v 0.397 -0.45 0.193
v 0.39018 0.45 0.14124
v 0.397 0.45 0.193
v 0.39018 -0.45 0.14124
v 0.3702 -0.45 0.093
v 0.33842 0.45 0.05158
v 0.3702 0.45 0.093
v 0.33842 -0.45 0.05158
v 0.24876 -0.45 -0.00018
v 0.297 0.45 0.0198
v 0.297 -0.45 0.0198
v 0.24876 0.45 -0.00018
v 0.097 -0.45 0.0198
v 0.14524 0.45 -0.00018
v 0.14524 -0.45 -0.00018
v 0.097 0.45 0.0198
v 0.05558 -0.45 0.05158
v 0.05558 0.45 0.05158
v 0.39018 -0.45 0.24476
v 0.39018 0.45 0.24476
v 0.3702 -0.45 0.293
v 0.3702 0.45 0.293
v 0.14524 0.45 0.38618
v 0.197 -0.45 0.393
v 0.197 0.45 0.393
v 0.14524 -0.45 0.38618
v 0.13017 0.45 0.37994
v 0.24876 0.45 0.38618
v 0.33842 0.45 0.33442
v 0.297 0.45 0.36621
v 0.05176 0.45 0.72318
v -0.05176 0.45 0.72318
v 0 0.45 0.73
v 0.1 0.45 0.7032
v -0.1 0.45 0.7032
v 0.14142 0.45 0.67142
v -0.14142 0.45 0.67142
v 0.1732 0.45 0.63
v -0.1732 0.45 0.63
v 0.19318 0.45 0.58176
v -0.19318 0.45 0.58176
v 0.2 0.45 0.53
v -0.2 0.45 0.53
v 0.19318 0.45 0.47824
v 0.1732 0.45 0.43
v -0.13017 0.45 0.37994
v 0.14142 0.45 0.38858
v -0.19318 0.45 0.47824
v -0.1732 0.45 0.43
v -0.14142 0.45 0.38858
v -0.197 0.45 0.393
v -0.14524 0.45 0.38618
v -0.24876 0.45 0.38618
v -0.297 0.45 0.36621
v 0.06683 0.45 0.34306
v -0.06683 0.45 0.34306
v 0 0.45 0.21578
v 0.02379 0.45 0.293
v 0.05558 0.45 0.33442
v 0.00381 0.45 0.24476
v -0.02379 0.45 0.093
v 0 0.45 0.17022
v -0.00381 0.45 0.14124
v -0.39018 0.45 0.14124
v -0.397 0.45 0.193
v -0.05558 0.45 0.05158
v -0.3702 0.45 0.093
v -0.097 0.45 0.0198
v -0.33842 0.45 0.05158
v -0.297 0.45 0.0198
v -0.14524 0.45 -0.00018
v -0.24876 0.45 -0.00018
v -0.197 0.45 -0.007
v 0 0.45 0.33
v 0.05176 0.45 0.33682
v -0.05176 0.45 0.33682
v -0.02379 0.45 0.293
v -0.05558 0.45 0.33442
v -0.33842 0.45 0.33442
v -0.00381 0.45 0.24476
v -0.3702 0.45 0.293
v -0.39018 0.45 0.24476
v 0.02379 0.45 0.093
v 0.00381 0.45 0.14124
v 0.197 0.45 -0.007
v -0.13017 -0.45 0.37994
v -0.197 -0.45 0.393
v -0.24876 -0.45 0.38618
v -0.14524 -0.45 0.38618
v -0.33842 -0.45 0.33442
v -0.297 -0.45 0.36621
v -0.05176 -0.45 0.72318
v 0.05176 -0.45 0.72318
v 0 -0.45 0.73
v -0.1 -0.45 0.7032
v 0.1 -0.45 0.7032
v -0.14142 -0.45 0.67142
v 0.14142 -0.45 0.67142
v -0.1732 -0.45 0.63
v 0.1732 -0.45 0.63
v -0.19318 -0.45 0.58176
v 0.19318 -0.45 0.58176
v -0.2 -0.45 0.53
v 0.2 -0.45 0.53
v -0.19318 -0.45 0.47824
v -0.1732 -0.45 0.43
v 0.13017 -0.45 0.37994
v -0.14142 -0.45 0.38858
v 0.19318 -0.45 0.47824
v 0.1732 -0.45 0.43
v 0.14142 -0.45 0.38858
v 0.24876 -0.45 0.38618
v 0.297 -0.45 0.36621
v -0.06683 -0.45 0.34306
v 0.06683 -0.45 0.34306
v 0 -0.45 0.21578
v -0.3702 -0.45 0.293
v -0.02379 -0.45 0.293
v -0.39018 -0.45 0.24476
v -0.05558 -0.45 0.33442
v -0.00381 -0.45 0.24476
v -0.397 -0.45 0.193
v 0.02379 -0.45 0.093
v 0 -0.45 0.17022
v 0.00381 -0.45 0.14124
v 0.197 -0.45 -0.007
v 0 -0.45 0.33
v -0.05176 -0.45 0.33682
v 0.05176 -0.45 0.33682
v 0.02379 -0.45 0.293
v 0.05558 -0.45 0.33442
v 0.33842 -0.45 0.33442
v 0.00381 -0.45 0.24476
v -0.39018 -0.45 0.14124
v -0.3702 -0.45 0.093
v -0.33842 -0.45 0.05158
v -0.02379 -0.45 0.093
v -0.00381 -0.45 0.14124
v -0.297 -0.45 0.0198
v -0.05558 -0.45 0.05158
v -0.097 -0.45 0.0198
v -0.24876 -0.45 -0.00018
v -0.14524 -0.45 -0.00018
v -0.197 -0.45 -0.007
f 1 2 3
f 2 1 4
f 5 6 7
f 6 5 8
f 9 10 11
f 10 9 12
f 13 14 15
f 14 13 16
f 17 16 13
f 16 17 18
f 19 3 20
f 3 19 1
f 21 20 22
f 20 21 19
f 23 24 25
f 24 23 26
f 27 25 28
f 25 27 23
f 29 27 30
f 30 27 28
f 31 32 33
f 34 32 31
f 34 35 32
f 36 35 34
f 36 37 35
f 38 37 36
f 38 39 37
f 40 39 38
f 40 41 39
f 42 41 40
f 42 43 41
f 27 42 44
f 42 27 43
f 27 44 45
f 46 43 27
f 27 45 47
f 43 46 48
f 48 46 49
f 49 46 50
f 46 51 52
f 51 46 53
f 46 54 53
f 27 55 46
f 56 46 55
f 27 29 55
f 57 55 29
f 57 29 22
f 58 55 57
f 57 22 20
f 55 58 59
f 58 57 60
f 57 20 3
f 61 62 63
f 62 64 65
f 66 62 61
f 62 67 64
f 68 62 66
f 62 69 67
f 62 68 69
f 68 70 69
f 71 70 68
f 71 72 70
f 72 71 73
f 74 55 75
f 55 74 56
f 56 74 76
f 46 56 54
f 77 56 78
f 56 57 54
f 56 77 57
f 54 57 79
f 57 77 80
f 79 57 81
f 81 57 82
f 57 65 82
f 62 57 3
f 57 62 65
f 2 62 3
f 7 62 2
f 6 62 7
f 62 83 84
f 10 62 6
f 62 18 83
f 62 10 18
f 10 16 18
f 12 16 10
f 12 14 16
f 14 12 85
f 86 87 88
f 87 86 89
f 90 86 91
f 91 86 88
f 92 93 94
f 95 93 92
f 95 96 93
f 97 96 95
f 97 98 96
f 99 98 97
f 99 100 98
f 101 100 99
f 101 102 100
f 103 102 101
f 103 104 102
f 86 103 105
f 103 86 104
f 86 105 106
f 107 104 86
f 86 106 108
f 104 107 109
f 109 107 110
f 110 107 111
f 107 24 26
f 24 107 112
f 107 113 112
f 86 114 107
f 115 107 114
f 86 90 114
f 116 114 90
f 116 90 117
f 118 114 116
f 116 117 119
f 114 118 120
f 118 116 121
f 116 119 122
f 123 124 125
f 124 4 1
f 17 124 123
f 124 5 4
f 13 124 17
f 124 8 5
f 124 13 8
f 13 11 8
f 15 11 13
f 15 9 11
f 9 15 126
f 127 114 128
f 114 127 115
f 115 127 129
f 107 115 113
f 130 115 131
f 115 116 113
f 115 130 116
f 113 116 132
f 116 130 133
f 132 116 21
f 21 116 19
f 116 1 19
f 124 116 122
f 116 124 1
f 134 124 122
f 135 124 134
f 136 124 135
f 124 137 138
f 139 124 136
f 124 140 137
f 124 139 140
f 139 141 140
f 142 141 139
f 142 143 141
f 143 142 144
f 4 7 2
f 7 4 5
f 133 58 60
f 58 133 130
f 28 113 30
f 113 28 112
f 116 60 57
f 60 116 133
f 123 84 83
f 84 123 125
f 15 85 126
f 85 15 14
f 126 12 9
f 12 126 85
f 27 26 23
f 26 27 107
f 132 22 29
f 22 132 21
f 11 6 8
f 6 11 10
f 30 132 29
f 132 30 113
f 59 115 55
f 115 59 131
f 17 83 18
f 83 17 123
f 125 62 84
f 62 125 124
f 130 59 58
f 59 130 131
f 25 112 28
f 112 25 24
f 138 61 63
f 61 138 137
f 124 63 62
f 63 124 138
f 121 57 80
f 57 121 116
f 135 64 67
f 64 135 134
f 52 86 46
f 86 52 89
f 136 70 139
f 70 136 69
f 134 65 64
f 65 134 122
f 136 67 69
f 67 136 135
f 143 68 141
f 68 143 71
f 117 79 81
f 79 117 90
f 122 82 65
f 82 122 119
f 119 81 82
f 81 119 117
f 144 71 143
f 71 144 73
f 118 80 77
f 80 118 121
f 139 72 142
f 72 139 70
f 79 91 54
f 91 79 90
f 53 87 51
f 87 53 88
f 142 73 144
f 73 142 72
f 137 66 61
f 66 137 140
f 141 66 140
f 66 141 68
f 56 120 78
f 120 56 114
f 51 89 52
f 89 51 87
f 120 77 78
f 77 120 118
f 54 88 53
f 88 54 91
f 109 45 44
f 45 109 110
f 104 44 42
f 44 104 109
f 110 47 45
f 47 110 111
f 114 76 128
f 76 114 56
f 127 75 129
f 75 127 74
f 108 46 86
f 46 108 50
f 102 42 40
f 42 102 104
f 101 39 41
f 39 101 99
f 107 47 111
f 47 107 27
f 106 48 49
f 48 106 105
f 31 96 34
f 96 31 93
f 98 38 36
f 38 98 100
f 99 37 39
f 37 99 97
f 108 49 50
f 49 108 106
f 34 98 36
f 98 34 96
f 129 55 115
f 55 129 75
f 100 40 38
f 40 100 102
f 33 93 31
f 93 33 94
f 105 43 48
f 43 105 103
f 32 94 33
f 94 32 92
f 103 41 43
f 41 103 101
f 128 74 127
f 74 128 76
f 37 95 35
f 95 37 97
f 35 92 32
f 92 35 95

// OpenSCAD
// file: lib.scad
function x(v) = v[0];
function y(v) = v[1];
function z(v) = v[2];
function add(v1,v2) = [ for (i = [ 0 : len(v1)-1 ]) v1[i] + v2[i] ];
function xv(d) = [d,0,0];
function yv(d) = [0,d,0];
function zv(d) = [0,0,d];

module box(v) { cube(size=v, center=true); }
module cyl(r1,r2,h) { cylinder(r1=r1, r2=r2, h=h, center=true); }

function grow(n,v) = [x(v)+n*2, y(v)+n*2, z(v)+n*2];

module rbox(v, radius=1) {
	cx = x(v)/2-radius;
	cy = y(v)/2-radius;
	cz = z(v)/2-radius;

	hull() {
		translate([cx,cy,cz]) sphere(r=radius);
		translate([cx,cy,-cz]) sphere(r=radius);
		translate([cx,-cy,cz]) sphere(r=radius);
		translate([cx,-cy,-cz]) sphere(r=radius);
		translate([-cx,cy,cz]) sphere(r=radius);
		translate([-cx,cy,-cz]) sphere(r=radius);
		translate([-cx,-cy,cz]) sphere(r=radius);
		translate([-cx,-cy,-cz]) sphere(r=radius);
	}
}

module fillet(r=1) {
  minkowski() {
    difference() {
      children();
      minkowski() {
        difference() {
          minkowski() {
            children();
            sphere(r=r);
          }
          children();
        }
        sphere(r=r);
      }
    }
    sphere(r=r);
  }
}
// main file
use <lib.scad>

r = 0.2;

translate([0,0,0.39]) rotate([-90,0,0]) union() {
	translate([0.197,0.197,0]) cyl(r,r,0.9,$fn=24);
	translate([-0.197,0.197,0]) cyl(r,r,0.9,$fn=24);
	translate([0,-0.14,0]) cyl(r,r,0.9,$fn=24);
}
